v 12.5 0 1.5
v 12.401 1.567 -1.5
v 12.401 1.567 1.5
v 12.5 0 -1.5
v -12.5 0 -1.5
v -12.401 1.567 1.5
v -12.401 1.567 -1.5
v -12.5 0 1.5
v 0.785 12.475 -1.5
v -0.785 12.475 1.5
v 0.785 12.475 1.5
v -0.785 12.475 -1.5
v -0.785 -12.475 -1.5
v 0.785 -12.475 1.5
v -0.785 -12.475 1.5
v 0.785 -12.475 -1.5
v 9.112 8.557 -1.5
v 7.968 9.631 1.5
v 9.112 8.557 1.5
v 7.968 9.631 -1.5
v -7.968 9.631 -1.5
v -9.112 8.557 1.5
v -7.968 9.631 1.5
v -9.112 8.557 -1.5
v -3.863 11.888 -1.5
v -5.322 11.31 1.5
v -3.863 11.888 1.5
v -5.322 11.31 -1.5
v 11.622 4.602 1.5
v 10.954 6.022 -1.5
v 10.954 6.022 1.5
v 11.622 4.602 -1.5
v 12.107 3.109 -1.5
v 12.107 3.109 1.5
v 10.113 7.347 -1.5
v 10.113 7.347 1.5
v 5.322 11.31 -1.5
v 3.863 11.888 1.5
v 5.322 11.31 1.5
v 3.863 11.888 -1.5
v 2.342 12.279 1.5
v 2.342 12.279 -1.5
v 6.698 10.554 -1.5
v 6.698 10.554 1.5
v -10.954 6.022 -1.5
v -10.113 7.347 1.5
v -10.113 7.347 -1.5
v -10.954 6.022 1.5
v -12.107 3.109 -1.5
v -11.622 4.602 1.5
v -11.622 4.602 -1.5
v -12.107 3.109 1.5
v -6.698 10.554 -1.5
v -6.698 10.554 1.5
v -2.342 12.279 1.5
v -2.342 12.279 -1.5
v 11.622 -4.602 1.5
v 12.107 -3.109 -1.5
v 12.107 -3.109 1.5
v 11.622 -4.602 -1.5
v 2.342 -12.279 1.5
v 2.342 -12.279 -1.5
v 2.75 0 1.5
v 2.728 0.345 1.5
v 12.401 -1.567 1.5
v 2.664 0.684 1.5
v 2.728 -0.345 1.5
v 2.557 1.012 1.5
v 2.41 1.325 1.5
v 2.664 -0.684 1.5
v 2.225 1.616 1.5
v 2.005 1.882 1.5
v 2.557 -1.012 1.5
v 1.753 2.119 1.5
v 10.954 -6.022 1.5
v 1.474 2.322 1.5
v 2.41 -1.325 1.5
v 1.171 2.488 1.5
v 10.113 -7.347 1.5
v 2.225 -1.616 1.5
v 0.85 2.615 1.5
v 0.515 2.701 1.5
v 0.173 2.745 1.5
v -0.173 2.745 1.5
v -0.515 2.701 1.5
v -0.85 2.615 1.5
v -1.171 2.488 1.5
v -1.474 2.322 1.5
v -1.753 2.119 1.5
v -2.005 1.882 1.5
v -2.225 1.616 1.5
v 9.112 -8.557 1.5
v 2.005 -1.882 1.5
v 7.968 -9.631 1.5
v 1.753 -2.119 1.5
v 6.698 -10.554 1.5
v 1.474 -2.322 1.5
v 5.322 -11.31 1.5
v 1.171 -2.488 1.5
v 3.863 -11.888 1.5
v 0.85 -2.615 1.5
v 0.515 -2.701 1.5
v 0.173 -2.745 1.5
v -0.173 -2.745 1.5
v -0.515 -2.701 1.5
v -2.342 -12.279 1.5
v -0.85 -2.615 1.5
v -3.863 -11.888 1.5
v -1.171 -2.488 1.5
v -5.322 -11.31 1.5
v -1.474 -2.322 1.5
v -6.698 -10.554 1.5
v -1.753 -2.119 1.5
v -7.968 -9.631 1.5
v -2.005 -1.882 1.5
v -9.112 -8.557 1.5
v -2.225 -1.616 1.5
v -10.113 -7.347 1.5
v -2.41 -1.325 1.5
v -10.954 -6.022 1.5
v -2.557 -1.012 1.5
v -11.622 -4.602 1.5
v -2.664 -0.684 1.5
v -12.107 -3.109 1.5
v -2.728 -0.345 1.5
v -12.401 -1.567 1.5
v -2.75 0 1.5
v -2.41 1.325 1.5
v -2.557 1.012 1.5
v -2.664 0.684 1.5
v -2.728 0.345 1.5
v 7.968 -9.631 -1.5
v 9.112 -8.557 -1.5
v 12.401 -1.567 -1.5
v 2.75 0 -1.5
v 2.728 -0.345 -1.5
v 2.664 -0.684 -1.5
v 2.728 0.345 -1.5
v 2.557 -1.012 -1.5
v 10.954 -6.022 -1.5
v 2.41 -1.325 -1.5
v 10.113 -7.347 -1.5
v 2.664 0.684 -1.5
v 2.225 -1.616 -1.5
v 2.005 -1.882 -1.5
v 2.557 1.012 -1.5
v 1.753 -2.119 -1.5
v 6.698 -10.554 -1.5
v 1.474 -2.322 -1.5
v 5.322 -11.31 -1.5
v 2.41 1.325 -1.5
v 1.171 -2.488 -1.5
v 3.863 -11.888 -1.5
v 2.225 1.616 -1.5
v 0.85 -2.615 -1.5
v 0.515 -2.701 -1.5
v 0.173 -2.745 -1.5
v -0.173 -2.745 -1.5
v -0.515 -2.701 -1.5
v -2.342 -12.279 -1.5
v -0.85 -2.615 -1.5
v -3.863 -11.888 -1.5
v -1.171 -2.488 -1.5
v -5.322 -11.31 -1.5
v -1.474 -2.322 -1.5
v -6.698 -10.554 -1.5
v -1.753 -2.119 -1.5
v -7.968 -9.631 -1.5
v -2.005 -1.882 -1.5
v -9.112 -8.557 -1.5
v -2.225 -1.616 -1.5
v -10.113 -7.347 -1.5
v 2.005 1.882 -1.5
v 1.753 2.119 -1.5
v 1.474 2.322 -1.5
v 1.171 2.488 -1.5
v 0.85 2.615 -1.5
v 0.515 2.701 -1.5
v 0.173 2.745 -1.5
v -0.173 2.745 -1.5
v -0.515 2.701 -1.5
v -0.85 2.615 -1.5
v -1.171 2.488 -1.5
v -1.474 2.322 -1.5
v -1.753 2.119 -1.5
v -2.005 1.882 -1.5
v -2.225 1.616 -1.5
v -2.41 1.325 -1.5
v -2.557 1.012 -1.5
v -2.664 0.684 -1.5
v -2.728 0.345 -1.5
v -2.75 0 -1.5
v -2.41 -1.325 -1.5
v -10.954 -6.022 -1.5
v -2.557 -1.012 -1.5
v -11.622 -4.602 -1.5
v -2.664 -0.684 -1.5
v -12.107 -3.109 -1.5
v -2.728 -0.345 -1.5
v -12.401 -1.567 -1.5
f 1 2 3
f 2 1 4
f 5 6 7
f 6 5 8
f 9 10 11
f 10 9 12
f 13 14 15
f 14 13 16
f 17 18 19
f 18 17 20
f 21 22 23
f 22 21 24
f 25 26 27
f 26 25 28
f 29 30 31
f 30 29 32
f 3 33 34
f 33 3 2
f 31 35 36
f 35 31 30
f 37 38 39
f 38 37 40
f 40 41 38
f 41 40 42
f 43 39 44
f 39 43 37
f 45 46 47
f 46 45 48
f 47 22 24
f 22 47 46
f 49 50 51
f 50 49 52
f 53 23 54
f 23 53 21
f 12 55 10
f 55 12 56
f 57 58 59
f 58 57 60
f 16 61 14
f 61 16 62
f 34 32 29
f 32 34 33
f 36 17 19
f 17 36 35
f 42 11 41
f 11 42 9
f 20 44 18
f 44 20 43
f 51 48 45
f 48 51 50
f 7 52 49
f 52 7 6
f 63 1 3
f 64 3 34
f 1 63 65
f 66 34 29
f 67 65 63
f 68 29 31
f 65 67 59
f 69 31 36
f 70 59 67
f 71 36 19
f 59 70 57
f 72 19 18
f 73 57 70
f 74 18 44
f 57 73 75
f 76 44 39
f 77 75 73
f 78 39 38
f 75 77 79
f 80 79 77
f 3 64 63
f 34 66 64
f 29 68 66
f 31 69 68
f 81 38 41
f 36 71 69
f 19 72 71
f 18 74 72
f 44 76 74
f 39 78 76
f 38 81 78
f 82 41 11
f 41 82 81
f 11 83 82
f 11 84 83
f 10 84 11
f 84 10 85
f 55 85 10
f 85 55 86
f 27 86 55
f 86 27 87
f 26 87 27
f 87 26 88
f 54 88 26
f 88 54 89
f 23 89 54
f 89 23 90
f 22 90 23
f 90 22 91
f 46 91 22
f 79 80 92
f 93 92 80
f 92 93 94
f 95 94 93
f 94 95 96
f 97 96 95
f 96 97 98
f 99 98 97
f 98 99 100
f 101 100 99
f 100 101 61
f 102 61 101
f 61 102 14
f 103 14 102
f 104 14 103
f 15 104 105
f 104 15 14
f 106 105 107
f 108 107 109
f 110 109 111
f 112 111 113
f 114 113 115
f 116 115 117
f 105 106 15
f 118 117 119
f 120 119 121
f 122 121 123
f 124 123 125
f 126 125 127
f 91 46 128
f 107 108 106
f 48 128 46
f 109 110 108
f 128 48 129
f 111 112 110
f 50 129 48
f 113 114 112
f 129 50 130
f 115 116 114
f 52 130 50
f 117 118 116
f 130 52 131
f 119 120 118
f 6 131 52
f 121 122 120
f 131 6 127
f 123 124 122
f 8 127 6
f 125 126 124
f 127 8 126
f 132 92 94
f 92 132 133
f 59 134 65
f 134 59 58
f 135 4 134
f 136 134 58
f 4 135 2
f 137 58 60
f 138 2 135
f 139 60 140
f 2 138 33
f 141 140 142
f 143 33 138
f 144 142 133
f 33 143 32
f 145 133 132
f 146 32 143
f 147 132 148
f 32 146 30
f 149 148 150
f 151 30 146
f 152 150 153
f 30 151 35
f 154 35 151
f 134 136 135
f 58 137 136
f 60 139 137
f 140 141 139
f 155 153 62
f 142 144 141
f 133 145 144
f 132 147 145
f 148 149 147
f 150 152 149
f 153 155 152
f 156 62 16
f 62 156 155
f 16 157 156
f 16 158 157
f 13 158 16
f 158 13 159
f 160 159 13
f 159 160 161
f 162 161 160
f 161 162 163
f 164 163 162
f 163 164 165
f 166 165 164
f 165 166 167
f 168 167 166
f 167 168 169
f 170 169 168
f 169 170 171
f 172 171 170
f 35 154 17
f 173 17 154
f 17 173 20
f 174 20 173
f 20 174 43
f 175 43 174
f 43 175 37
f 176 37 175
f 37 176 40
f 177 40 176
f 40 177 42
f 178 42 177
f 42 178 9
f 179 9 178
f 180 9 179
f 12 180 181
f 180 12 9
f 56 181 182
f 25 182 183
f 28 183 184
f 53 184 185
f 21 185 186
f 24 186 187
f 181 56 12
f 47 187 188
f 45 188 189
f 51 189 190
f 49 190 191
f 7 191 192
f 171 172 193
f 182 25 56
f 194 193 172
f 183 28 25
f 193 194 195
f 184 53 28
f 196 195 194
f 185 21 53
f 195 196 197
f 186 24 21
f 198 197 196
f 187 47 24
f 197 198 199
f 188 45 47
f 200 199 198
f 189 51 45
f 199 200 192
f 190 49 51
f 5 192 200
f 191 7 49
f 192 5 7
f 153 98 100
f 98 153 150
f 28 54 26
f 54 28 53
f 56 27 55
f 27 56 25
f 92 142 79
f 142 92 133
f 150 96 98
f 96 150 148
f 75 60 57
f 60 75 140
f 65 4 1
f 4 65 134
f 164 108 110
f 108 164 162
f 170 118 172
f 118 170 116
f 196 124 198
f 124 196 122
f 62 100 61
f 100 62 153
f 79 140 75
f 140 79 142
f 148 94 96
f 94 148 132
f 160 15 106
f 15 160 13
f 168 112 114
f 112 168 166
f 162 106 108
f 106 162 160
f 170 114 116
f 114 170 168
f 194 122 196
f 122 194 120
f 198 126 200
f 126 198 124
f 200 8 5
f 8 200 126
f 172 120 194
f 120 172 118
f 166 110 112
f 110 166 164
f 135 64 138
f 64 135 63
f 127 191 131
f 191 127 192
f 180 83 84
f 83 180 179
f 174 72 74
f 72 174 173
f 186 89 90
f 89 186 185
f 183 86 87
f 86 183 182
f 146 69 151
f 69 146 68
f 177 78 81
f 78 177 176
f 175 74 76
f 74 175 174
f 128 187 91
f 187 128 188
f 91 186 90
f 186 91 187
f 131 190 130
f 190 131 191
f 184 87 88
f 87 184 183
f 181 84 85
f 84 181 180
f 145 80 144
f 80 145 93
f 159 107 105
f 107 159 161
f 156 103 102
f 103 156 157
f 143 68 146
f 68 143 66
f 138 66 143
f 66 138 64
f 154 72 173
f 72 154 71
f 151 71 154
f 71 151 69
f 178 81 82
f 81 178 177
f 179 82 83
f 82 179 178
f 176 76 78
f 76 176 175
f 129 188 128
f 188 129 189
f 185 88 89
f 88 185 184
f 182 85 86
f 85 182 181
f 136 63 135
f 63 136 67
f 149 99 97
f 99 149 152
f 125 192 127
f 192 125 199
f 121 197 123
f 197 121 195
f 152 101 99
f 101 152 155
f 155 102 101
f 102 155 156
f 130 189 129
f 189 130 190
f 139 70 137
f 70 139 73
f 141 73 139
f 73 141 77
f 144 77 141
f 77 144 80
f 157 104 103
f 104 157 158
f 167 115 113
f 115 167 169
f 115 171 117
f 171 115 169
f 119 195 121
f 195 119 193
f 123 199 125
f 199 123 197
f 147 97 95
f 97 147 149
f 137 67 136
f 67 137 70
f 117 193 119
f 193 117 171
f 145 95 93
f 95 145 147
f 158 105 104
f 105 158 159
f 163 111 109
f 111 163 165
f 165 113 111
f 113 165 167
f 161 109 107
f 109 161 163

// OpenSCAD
$fn = 50;


difference() {
	union() {
		translate(v = [0, 0, -1.5000000000]) {
			cylinder(h = 3, r = 12.5000000000);
		}
	}
	union() {
		translate(v = [0, 0, -100.0000000000]) {
			cylinder(h = 200, r = 2.7500000000);
		}
	}
}
